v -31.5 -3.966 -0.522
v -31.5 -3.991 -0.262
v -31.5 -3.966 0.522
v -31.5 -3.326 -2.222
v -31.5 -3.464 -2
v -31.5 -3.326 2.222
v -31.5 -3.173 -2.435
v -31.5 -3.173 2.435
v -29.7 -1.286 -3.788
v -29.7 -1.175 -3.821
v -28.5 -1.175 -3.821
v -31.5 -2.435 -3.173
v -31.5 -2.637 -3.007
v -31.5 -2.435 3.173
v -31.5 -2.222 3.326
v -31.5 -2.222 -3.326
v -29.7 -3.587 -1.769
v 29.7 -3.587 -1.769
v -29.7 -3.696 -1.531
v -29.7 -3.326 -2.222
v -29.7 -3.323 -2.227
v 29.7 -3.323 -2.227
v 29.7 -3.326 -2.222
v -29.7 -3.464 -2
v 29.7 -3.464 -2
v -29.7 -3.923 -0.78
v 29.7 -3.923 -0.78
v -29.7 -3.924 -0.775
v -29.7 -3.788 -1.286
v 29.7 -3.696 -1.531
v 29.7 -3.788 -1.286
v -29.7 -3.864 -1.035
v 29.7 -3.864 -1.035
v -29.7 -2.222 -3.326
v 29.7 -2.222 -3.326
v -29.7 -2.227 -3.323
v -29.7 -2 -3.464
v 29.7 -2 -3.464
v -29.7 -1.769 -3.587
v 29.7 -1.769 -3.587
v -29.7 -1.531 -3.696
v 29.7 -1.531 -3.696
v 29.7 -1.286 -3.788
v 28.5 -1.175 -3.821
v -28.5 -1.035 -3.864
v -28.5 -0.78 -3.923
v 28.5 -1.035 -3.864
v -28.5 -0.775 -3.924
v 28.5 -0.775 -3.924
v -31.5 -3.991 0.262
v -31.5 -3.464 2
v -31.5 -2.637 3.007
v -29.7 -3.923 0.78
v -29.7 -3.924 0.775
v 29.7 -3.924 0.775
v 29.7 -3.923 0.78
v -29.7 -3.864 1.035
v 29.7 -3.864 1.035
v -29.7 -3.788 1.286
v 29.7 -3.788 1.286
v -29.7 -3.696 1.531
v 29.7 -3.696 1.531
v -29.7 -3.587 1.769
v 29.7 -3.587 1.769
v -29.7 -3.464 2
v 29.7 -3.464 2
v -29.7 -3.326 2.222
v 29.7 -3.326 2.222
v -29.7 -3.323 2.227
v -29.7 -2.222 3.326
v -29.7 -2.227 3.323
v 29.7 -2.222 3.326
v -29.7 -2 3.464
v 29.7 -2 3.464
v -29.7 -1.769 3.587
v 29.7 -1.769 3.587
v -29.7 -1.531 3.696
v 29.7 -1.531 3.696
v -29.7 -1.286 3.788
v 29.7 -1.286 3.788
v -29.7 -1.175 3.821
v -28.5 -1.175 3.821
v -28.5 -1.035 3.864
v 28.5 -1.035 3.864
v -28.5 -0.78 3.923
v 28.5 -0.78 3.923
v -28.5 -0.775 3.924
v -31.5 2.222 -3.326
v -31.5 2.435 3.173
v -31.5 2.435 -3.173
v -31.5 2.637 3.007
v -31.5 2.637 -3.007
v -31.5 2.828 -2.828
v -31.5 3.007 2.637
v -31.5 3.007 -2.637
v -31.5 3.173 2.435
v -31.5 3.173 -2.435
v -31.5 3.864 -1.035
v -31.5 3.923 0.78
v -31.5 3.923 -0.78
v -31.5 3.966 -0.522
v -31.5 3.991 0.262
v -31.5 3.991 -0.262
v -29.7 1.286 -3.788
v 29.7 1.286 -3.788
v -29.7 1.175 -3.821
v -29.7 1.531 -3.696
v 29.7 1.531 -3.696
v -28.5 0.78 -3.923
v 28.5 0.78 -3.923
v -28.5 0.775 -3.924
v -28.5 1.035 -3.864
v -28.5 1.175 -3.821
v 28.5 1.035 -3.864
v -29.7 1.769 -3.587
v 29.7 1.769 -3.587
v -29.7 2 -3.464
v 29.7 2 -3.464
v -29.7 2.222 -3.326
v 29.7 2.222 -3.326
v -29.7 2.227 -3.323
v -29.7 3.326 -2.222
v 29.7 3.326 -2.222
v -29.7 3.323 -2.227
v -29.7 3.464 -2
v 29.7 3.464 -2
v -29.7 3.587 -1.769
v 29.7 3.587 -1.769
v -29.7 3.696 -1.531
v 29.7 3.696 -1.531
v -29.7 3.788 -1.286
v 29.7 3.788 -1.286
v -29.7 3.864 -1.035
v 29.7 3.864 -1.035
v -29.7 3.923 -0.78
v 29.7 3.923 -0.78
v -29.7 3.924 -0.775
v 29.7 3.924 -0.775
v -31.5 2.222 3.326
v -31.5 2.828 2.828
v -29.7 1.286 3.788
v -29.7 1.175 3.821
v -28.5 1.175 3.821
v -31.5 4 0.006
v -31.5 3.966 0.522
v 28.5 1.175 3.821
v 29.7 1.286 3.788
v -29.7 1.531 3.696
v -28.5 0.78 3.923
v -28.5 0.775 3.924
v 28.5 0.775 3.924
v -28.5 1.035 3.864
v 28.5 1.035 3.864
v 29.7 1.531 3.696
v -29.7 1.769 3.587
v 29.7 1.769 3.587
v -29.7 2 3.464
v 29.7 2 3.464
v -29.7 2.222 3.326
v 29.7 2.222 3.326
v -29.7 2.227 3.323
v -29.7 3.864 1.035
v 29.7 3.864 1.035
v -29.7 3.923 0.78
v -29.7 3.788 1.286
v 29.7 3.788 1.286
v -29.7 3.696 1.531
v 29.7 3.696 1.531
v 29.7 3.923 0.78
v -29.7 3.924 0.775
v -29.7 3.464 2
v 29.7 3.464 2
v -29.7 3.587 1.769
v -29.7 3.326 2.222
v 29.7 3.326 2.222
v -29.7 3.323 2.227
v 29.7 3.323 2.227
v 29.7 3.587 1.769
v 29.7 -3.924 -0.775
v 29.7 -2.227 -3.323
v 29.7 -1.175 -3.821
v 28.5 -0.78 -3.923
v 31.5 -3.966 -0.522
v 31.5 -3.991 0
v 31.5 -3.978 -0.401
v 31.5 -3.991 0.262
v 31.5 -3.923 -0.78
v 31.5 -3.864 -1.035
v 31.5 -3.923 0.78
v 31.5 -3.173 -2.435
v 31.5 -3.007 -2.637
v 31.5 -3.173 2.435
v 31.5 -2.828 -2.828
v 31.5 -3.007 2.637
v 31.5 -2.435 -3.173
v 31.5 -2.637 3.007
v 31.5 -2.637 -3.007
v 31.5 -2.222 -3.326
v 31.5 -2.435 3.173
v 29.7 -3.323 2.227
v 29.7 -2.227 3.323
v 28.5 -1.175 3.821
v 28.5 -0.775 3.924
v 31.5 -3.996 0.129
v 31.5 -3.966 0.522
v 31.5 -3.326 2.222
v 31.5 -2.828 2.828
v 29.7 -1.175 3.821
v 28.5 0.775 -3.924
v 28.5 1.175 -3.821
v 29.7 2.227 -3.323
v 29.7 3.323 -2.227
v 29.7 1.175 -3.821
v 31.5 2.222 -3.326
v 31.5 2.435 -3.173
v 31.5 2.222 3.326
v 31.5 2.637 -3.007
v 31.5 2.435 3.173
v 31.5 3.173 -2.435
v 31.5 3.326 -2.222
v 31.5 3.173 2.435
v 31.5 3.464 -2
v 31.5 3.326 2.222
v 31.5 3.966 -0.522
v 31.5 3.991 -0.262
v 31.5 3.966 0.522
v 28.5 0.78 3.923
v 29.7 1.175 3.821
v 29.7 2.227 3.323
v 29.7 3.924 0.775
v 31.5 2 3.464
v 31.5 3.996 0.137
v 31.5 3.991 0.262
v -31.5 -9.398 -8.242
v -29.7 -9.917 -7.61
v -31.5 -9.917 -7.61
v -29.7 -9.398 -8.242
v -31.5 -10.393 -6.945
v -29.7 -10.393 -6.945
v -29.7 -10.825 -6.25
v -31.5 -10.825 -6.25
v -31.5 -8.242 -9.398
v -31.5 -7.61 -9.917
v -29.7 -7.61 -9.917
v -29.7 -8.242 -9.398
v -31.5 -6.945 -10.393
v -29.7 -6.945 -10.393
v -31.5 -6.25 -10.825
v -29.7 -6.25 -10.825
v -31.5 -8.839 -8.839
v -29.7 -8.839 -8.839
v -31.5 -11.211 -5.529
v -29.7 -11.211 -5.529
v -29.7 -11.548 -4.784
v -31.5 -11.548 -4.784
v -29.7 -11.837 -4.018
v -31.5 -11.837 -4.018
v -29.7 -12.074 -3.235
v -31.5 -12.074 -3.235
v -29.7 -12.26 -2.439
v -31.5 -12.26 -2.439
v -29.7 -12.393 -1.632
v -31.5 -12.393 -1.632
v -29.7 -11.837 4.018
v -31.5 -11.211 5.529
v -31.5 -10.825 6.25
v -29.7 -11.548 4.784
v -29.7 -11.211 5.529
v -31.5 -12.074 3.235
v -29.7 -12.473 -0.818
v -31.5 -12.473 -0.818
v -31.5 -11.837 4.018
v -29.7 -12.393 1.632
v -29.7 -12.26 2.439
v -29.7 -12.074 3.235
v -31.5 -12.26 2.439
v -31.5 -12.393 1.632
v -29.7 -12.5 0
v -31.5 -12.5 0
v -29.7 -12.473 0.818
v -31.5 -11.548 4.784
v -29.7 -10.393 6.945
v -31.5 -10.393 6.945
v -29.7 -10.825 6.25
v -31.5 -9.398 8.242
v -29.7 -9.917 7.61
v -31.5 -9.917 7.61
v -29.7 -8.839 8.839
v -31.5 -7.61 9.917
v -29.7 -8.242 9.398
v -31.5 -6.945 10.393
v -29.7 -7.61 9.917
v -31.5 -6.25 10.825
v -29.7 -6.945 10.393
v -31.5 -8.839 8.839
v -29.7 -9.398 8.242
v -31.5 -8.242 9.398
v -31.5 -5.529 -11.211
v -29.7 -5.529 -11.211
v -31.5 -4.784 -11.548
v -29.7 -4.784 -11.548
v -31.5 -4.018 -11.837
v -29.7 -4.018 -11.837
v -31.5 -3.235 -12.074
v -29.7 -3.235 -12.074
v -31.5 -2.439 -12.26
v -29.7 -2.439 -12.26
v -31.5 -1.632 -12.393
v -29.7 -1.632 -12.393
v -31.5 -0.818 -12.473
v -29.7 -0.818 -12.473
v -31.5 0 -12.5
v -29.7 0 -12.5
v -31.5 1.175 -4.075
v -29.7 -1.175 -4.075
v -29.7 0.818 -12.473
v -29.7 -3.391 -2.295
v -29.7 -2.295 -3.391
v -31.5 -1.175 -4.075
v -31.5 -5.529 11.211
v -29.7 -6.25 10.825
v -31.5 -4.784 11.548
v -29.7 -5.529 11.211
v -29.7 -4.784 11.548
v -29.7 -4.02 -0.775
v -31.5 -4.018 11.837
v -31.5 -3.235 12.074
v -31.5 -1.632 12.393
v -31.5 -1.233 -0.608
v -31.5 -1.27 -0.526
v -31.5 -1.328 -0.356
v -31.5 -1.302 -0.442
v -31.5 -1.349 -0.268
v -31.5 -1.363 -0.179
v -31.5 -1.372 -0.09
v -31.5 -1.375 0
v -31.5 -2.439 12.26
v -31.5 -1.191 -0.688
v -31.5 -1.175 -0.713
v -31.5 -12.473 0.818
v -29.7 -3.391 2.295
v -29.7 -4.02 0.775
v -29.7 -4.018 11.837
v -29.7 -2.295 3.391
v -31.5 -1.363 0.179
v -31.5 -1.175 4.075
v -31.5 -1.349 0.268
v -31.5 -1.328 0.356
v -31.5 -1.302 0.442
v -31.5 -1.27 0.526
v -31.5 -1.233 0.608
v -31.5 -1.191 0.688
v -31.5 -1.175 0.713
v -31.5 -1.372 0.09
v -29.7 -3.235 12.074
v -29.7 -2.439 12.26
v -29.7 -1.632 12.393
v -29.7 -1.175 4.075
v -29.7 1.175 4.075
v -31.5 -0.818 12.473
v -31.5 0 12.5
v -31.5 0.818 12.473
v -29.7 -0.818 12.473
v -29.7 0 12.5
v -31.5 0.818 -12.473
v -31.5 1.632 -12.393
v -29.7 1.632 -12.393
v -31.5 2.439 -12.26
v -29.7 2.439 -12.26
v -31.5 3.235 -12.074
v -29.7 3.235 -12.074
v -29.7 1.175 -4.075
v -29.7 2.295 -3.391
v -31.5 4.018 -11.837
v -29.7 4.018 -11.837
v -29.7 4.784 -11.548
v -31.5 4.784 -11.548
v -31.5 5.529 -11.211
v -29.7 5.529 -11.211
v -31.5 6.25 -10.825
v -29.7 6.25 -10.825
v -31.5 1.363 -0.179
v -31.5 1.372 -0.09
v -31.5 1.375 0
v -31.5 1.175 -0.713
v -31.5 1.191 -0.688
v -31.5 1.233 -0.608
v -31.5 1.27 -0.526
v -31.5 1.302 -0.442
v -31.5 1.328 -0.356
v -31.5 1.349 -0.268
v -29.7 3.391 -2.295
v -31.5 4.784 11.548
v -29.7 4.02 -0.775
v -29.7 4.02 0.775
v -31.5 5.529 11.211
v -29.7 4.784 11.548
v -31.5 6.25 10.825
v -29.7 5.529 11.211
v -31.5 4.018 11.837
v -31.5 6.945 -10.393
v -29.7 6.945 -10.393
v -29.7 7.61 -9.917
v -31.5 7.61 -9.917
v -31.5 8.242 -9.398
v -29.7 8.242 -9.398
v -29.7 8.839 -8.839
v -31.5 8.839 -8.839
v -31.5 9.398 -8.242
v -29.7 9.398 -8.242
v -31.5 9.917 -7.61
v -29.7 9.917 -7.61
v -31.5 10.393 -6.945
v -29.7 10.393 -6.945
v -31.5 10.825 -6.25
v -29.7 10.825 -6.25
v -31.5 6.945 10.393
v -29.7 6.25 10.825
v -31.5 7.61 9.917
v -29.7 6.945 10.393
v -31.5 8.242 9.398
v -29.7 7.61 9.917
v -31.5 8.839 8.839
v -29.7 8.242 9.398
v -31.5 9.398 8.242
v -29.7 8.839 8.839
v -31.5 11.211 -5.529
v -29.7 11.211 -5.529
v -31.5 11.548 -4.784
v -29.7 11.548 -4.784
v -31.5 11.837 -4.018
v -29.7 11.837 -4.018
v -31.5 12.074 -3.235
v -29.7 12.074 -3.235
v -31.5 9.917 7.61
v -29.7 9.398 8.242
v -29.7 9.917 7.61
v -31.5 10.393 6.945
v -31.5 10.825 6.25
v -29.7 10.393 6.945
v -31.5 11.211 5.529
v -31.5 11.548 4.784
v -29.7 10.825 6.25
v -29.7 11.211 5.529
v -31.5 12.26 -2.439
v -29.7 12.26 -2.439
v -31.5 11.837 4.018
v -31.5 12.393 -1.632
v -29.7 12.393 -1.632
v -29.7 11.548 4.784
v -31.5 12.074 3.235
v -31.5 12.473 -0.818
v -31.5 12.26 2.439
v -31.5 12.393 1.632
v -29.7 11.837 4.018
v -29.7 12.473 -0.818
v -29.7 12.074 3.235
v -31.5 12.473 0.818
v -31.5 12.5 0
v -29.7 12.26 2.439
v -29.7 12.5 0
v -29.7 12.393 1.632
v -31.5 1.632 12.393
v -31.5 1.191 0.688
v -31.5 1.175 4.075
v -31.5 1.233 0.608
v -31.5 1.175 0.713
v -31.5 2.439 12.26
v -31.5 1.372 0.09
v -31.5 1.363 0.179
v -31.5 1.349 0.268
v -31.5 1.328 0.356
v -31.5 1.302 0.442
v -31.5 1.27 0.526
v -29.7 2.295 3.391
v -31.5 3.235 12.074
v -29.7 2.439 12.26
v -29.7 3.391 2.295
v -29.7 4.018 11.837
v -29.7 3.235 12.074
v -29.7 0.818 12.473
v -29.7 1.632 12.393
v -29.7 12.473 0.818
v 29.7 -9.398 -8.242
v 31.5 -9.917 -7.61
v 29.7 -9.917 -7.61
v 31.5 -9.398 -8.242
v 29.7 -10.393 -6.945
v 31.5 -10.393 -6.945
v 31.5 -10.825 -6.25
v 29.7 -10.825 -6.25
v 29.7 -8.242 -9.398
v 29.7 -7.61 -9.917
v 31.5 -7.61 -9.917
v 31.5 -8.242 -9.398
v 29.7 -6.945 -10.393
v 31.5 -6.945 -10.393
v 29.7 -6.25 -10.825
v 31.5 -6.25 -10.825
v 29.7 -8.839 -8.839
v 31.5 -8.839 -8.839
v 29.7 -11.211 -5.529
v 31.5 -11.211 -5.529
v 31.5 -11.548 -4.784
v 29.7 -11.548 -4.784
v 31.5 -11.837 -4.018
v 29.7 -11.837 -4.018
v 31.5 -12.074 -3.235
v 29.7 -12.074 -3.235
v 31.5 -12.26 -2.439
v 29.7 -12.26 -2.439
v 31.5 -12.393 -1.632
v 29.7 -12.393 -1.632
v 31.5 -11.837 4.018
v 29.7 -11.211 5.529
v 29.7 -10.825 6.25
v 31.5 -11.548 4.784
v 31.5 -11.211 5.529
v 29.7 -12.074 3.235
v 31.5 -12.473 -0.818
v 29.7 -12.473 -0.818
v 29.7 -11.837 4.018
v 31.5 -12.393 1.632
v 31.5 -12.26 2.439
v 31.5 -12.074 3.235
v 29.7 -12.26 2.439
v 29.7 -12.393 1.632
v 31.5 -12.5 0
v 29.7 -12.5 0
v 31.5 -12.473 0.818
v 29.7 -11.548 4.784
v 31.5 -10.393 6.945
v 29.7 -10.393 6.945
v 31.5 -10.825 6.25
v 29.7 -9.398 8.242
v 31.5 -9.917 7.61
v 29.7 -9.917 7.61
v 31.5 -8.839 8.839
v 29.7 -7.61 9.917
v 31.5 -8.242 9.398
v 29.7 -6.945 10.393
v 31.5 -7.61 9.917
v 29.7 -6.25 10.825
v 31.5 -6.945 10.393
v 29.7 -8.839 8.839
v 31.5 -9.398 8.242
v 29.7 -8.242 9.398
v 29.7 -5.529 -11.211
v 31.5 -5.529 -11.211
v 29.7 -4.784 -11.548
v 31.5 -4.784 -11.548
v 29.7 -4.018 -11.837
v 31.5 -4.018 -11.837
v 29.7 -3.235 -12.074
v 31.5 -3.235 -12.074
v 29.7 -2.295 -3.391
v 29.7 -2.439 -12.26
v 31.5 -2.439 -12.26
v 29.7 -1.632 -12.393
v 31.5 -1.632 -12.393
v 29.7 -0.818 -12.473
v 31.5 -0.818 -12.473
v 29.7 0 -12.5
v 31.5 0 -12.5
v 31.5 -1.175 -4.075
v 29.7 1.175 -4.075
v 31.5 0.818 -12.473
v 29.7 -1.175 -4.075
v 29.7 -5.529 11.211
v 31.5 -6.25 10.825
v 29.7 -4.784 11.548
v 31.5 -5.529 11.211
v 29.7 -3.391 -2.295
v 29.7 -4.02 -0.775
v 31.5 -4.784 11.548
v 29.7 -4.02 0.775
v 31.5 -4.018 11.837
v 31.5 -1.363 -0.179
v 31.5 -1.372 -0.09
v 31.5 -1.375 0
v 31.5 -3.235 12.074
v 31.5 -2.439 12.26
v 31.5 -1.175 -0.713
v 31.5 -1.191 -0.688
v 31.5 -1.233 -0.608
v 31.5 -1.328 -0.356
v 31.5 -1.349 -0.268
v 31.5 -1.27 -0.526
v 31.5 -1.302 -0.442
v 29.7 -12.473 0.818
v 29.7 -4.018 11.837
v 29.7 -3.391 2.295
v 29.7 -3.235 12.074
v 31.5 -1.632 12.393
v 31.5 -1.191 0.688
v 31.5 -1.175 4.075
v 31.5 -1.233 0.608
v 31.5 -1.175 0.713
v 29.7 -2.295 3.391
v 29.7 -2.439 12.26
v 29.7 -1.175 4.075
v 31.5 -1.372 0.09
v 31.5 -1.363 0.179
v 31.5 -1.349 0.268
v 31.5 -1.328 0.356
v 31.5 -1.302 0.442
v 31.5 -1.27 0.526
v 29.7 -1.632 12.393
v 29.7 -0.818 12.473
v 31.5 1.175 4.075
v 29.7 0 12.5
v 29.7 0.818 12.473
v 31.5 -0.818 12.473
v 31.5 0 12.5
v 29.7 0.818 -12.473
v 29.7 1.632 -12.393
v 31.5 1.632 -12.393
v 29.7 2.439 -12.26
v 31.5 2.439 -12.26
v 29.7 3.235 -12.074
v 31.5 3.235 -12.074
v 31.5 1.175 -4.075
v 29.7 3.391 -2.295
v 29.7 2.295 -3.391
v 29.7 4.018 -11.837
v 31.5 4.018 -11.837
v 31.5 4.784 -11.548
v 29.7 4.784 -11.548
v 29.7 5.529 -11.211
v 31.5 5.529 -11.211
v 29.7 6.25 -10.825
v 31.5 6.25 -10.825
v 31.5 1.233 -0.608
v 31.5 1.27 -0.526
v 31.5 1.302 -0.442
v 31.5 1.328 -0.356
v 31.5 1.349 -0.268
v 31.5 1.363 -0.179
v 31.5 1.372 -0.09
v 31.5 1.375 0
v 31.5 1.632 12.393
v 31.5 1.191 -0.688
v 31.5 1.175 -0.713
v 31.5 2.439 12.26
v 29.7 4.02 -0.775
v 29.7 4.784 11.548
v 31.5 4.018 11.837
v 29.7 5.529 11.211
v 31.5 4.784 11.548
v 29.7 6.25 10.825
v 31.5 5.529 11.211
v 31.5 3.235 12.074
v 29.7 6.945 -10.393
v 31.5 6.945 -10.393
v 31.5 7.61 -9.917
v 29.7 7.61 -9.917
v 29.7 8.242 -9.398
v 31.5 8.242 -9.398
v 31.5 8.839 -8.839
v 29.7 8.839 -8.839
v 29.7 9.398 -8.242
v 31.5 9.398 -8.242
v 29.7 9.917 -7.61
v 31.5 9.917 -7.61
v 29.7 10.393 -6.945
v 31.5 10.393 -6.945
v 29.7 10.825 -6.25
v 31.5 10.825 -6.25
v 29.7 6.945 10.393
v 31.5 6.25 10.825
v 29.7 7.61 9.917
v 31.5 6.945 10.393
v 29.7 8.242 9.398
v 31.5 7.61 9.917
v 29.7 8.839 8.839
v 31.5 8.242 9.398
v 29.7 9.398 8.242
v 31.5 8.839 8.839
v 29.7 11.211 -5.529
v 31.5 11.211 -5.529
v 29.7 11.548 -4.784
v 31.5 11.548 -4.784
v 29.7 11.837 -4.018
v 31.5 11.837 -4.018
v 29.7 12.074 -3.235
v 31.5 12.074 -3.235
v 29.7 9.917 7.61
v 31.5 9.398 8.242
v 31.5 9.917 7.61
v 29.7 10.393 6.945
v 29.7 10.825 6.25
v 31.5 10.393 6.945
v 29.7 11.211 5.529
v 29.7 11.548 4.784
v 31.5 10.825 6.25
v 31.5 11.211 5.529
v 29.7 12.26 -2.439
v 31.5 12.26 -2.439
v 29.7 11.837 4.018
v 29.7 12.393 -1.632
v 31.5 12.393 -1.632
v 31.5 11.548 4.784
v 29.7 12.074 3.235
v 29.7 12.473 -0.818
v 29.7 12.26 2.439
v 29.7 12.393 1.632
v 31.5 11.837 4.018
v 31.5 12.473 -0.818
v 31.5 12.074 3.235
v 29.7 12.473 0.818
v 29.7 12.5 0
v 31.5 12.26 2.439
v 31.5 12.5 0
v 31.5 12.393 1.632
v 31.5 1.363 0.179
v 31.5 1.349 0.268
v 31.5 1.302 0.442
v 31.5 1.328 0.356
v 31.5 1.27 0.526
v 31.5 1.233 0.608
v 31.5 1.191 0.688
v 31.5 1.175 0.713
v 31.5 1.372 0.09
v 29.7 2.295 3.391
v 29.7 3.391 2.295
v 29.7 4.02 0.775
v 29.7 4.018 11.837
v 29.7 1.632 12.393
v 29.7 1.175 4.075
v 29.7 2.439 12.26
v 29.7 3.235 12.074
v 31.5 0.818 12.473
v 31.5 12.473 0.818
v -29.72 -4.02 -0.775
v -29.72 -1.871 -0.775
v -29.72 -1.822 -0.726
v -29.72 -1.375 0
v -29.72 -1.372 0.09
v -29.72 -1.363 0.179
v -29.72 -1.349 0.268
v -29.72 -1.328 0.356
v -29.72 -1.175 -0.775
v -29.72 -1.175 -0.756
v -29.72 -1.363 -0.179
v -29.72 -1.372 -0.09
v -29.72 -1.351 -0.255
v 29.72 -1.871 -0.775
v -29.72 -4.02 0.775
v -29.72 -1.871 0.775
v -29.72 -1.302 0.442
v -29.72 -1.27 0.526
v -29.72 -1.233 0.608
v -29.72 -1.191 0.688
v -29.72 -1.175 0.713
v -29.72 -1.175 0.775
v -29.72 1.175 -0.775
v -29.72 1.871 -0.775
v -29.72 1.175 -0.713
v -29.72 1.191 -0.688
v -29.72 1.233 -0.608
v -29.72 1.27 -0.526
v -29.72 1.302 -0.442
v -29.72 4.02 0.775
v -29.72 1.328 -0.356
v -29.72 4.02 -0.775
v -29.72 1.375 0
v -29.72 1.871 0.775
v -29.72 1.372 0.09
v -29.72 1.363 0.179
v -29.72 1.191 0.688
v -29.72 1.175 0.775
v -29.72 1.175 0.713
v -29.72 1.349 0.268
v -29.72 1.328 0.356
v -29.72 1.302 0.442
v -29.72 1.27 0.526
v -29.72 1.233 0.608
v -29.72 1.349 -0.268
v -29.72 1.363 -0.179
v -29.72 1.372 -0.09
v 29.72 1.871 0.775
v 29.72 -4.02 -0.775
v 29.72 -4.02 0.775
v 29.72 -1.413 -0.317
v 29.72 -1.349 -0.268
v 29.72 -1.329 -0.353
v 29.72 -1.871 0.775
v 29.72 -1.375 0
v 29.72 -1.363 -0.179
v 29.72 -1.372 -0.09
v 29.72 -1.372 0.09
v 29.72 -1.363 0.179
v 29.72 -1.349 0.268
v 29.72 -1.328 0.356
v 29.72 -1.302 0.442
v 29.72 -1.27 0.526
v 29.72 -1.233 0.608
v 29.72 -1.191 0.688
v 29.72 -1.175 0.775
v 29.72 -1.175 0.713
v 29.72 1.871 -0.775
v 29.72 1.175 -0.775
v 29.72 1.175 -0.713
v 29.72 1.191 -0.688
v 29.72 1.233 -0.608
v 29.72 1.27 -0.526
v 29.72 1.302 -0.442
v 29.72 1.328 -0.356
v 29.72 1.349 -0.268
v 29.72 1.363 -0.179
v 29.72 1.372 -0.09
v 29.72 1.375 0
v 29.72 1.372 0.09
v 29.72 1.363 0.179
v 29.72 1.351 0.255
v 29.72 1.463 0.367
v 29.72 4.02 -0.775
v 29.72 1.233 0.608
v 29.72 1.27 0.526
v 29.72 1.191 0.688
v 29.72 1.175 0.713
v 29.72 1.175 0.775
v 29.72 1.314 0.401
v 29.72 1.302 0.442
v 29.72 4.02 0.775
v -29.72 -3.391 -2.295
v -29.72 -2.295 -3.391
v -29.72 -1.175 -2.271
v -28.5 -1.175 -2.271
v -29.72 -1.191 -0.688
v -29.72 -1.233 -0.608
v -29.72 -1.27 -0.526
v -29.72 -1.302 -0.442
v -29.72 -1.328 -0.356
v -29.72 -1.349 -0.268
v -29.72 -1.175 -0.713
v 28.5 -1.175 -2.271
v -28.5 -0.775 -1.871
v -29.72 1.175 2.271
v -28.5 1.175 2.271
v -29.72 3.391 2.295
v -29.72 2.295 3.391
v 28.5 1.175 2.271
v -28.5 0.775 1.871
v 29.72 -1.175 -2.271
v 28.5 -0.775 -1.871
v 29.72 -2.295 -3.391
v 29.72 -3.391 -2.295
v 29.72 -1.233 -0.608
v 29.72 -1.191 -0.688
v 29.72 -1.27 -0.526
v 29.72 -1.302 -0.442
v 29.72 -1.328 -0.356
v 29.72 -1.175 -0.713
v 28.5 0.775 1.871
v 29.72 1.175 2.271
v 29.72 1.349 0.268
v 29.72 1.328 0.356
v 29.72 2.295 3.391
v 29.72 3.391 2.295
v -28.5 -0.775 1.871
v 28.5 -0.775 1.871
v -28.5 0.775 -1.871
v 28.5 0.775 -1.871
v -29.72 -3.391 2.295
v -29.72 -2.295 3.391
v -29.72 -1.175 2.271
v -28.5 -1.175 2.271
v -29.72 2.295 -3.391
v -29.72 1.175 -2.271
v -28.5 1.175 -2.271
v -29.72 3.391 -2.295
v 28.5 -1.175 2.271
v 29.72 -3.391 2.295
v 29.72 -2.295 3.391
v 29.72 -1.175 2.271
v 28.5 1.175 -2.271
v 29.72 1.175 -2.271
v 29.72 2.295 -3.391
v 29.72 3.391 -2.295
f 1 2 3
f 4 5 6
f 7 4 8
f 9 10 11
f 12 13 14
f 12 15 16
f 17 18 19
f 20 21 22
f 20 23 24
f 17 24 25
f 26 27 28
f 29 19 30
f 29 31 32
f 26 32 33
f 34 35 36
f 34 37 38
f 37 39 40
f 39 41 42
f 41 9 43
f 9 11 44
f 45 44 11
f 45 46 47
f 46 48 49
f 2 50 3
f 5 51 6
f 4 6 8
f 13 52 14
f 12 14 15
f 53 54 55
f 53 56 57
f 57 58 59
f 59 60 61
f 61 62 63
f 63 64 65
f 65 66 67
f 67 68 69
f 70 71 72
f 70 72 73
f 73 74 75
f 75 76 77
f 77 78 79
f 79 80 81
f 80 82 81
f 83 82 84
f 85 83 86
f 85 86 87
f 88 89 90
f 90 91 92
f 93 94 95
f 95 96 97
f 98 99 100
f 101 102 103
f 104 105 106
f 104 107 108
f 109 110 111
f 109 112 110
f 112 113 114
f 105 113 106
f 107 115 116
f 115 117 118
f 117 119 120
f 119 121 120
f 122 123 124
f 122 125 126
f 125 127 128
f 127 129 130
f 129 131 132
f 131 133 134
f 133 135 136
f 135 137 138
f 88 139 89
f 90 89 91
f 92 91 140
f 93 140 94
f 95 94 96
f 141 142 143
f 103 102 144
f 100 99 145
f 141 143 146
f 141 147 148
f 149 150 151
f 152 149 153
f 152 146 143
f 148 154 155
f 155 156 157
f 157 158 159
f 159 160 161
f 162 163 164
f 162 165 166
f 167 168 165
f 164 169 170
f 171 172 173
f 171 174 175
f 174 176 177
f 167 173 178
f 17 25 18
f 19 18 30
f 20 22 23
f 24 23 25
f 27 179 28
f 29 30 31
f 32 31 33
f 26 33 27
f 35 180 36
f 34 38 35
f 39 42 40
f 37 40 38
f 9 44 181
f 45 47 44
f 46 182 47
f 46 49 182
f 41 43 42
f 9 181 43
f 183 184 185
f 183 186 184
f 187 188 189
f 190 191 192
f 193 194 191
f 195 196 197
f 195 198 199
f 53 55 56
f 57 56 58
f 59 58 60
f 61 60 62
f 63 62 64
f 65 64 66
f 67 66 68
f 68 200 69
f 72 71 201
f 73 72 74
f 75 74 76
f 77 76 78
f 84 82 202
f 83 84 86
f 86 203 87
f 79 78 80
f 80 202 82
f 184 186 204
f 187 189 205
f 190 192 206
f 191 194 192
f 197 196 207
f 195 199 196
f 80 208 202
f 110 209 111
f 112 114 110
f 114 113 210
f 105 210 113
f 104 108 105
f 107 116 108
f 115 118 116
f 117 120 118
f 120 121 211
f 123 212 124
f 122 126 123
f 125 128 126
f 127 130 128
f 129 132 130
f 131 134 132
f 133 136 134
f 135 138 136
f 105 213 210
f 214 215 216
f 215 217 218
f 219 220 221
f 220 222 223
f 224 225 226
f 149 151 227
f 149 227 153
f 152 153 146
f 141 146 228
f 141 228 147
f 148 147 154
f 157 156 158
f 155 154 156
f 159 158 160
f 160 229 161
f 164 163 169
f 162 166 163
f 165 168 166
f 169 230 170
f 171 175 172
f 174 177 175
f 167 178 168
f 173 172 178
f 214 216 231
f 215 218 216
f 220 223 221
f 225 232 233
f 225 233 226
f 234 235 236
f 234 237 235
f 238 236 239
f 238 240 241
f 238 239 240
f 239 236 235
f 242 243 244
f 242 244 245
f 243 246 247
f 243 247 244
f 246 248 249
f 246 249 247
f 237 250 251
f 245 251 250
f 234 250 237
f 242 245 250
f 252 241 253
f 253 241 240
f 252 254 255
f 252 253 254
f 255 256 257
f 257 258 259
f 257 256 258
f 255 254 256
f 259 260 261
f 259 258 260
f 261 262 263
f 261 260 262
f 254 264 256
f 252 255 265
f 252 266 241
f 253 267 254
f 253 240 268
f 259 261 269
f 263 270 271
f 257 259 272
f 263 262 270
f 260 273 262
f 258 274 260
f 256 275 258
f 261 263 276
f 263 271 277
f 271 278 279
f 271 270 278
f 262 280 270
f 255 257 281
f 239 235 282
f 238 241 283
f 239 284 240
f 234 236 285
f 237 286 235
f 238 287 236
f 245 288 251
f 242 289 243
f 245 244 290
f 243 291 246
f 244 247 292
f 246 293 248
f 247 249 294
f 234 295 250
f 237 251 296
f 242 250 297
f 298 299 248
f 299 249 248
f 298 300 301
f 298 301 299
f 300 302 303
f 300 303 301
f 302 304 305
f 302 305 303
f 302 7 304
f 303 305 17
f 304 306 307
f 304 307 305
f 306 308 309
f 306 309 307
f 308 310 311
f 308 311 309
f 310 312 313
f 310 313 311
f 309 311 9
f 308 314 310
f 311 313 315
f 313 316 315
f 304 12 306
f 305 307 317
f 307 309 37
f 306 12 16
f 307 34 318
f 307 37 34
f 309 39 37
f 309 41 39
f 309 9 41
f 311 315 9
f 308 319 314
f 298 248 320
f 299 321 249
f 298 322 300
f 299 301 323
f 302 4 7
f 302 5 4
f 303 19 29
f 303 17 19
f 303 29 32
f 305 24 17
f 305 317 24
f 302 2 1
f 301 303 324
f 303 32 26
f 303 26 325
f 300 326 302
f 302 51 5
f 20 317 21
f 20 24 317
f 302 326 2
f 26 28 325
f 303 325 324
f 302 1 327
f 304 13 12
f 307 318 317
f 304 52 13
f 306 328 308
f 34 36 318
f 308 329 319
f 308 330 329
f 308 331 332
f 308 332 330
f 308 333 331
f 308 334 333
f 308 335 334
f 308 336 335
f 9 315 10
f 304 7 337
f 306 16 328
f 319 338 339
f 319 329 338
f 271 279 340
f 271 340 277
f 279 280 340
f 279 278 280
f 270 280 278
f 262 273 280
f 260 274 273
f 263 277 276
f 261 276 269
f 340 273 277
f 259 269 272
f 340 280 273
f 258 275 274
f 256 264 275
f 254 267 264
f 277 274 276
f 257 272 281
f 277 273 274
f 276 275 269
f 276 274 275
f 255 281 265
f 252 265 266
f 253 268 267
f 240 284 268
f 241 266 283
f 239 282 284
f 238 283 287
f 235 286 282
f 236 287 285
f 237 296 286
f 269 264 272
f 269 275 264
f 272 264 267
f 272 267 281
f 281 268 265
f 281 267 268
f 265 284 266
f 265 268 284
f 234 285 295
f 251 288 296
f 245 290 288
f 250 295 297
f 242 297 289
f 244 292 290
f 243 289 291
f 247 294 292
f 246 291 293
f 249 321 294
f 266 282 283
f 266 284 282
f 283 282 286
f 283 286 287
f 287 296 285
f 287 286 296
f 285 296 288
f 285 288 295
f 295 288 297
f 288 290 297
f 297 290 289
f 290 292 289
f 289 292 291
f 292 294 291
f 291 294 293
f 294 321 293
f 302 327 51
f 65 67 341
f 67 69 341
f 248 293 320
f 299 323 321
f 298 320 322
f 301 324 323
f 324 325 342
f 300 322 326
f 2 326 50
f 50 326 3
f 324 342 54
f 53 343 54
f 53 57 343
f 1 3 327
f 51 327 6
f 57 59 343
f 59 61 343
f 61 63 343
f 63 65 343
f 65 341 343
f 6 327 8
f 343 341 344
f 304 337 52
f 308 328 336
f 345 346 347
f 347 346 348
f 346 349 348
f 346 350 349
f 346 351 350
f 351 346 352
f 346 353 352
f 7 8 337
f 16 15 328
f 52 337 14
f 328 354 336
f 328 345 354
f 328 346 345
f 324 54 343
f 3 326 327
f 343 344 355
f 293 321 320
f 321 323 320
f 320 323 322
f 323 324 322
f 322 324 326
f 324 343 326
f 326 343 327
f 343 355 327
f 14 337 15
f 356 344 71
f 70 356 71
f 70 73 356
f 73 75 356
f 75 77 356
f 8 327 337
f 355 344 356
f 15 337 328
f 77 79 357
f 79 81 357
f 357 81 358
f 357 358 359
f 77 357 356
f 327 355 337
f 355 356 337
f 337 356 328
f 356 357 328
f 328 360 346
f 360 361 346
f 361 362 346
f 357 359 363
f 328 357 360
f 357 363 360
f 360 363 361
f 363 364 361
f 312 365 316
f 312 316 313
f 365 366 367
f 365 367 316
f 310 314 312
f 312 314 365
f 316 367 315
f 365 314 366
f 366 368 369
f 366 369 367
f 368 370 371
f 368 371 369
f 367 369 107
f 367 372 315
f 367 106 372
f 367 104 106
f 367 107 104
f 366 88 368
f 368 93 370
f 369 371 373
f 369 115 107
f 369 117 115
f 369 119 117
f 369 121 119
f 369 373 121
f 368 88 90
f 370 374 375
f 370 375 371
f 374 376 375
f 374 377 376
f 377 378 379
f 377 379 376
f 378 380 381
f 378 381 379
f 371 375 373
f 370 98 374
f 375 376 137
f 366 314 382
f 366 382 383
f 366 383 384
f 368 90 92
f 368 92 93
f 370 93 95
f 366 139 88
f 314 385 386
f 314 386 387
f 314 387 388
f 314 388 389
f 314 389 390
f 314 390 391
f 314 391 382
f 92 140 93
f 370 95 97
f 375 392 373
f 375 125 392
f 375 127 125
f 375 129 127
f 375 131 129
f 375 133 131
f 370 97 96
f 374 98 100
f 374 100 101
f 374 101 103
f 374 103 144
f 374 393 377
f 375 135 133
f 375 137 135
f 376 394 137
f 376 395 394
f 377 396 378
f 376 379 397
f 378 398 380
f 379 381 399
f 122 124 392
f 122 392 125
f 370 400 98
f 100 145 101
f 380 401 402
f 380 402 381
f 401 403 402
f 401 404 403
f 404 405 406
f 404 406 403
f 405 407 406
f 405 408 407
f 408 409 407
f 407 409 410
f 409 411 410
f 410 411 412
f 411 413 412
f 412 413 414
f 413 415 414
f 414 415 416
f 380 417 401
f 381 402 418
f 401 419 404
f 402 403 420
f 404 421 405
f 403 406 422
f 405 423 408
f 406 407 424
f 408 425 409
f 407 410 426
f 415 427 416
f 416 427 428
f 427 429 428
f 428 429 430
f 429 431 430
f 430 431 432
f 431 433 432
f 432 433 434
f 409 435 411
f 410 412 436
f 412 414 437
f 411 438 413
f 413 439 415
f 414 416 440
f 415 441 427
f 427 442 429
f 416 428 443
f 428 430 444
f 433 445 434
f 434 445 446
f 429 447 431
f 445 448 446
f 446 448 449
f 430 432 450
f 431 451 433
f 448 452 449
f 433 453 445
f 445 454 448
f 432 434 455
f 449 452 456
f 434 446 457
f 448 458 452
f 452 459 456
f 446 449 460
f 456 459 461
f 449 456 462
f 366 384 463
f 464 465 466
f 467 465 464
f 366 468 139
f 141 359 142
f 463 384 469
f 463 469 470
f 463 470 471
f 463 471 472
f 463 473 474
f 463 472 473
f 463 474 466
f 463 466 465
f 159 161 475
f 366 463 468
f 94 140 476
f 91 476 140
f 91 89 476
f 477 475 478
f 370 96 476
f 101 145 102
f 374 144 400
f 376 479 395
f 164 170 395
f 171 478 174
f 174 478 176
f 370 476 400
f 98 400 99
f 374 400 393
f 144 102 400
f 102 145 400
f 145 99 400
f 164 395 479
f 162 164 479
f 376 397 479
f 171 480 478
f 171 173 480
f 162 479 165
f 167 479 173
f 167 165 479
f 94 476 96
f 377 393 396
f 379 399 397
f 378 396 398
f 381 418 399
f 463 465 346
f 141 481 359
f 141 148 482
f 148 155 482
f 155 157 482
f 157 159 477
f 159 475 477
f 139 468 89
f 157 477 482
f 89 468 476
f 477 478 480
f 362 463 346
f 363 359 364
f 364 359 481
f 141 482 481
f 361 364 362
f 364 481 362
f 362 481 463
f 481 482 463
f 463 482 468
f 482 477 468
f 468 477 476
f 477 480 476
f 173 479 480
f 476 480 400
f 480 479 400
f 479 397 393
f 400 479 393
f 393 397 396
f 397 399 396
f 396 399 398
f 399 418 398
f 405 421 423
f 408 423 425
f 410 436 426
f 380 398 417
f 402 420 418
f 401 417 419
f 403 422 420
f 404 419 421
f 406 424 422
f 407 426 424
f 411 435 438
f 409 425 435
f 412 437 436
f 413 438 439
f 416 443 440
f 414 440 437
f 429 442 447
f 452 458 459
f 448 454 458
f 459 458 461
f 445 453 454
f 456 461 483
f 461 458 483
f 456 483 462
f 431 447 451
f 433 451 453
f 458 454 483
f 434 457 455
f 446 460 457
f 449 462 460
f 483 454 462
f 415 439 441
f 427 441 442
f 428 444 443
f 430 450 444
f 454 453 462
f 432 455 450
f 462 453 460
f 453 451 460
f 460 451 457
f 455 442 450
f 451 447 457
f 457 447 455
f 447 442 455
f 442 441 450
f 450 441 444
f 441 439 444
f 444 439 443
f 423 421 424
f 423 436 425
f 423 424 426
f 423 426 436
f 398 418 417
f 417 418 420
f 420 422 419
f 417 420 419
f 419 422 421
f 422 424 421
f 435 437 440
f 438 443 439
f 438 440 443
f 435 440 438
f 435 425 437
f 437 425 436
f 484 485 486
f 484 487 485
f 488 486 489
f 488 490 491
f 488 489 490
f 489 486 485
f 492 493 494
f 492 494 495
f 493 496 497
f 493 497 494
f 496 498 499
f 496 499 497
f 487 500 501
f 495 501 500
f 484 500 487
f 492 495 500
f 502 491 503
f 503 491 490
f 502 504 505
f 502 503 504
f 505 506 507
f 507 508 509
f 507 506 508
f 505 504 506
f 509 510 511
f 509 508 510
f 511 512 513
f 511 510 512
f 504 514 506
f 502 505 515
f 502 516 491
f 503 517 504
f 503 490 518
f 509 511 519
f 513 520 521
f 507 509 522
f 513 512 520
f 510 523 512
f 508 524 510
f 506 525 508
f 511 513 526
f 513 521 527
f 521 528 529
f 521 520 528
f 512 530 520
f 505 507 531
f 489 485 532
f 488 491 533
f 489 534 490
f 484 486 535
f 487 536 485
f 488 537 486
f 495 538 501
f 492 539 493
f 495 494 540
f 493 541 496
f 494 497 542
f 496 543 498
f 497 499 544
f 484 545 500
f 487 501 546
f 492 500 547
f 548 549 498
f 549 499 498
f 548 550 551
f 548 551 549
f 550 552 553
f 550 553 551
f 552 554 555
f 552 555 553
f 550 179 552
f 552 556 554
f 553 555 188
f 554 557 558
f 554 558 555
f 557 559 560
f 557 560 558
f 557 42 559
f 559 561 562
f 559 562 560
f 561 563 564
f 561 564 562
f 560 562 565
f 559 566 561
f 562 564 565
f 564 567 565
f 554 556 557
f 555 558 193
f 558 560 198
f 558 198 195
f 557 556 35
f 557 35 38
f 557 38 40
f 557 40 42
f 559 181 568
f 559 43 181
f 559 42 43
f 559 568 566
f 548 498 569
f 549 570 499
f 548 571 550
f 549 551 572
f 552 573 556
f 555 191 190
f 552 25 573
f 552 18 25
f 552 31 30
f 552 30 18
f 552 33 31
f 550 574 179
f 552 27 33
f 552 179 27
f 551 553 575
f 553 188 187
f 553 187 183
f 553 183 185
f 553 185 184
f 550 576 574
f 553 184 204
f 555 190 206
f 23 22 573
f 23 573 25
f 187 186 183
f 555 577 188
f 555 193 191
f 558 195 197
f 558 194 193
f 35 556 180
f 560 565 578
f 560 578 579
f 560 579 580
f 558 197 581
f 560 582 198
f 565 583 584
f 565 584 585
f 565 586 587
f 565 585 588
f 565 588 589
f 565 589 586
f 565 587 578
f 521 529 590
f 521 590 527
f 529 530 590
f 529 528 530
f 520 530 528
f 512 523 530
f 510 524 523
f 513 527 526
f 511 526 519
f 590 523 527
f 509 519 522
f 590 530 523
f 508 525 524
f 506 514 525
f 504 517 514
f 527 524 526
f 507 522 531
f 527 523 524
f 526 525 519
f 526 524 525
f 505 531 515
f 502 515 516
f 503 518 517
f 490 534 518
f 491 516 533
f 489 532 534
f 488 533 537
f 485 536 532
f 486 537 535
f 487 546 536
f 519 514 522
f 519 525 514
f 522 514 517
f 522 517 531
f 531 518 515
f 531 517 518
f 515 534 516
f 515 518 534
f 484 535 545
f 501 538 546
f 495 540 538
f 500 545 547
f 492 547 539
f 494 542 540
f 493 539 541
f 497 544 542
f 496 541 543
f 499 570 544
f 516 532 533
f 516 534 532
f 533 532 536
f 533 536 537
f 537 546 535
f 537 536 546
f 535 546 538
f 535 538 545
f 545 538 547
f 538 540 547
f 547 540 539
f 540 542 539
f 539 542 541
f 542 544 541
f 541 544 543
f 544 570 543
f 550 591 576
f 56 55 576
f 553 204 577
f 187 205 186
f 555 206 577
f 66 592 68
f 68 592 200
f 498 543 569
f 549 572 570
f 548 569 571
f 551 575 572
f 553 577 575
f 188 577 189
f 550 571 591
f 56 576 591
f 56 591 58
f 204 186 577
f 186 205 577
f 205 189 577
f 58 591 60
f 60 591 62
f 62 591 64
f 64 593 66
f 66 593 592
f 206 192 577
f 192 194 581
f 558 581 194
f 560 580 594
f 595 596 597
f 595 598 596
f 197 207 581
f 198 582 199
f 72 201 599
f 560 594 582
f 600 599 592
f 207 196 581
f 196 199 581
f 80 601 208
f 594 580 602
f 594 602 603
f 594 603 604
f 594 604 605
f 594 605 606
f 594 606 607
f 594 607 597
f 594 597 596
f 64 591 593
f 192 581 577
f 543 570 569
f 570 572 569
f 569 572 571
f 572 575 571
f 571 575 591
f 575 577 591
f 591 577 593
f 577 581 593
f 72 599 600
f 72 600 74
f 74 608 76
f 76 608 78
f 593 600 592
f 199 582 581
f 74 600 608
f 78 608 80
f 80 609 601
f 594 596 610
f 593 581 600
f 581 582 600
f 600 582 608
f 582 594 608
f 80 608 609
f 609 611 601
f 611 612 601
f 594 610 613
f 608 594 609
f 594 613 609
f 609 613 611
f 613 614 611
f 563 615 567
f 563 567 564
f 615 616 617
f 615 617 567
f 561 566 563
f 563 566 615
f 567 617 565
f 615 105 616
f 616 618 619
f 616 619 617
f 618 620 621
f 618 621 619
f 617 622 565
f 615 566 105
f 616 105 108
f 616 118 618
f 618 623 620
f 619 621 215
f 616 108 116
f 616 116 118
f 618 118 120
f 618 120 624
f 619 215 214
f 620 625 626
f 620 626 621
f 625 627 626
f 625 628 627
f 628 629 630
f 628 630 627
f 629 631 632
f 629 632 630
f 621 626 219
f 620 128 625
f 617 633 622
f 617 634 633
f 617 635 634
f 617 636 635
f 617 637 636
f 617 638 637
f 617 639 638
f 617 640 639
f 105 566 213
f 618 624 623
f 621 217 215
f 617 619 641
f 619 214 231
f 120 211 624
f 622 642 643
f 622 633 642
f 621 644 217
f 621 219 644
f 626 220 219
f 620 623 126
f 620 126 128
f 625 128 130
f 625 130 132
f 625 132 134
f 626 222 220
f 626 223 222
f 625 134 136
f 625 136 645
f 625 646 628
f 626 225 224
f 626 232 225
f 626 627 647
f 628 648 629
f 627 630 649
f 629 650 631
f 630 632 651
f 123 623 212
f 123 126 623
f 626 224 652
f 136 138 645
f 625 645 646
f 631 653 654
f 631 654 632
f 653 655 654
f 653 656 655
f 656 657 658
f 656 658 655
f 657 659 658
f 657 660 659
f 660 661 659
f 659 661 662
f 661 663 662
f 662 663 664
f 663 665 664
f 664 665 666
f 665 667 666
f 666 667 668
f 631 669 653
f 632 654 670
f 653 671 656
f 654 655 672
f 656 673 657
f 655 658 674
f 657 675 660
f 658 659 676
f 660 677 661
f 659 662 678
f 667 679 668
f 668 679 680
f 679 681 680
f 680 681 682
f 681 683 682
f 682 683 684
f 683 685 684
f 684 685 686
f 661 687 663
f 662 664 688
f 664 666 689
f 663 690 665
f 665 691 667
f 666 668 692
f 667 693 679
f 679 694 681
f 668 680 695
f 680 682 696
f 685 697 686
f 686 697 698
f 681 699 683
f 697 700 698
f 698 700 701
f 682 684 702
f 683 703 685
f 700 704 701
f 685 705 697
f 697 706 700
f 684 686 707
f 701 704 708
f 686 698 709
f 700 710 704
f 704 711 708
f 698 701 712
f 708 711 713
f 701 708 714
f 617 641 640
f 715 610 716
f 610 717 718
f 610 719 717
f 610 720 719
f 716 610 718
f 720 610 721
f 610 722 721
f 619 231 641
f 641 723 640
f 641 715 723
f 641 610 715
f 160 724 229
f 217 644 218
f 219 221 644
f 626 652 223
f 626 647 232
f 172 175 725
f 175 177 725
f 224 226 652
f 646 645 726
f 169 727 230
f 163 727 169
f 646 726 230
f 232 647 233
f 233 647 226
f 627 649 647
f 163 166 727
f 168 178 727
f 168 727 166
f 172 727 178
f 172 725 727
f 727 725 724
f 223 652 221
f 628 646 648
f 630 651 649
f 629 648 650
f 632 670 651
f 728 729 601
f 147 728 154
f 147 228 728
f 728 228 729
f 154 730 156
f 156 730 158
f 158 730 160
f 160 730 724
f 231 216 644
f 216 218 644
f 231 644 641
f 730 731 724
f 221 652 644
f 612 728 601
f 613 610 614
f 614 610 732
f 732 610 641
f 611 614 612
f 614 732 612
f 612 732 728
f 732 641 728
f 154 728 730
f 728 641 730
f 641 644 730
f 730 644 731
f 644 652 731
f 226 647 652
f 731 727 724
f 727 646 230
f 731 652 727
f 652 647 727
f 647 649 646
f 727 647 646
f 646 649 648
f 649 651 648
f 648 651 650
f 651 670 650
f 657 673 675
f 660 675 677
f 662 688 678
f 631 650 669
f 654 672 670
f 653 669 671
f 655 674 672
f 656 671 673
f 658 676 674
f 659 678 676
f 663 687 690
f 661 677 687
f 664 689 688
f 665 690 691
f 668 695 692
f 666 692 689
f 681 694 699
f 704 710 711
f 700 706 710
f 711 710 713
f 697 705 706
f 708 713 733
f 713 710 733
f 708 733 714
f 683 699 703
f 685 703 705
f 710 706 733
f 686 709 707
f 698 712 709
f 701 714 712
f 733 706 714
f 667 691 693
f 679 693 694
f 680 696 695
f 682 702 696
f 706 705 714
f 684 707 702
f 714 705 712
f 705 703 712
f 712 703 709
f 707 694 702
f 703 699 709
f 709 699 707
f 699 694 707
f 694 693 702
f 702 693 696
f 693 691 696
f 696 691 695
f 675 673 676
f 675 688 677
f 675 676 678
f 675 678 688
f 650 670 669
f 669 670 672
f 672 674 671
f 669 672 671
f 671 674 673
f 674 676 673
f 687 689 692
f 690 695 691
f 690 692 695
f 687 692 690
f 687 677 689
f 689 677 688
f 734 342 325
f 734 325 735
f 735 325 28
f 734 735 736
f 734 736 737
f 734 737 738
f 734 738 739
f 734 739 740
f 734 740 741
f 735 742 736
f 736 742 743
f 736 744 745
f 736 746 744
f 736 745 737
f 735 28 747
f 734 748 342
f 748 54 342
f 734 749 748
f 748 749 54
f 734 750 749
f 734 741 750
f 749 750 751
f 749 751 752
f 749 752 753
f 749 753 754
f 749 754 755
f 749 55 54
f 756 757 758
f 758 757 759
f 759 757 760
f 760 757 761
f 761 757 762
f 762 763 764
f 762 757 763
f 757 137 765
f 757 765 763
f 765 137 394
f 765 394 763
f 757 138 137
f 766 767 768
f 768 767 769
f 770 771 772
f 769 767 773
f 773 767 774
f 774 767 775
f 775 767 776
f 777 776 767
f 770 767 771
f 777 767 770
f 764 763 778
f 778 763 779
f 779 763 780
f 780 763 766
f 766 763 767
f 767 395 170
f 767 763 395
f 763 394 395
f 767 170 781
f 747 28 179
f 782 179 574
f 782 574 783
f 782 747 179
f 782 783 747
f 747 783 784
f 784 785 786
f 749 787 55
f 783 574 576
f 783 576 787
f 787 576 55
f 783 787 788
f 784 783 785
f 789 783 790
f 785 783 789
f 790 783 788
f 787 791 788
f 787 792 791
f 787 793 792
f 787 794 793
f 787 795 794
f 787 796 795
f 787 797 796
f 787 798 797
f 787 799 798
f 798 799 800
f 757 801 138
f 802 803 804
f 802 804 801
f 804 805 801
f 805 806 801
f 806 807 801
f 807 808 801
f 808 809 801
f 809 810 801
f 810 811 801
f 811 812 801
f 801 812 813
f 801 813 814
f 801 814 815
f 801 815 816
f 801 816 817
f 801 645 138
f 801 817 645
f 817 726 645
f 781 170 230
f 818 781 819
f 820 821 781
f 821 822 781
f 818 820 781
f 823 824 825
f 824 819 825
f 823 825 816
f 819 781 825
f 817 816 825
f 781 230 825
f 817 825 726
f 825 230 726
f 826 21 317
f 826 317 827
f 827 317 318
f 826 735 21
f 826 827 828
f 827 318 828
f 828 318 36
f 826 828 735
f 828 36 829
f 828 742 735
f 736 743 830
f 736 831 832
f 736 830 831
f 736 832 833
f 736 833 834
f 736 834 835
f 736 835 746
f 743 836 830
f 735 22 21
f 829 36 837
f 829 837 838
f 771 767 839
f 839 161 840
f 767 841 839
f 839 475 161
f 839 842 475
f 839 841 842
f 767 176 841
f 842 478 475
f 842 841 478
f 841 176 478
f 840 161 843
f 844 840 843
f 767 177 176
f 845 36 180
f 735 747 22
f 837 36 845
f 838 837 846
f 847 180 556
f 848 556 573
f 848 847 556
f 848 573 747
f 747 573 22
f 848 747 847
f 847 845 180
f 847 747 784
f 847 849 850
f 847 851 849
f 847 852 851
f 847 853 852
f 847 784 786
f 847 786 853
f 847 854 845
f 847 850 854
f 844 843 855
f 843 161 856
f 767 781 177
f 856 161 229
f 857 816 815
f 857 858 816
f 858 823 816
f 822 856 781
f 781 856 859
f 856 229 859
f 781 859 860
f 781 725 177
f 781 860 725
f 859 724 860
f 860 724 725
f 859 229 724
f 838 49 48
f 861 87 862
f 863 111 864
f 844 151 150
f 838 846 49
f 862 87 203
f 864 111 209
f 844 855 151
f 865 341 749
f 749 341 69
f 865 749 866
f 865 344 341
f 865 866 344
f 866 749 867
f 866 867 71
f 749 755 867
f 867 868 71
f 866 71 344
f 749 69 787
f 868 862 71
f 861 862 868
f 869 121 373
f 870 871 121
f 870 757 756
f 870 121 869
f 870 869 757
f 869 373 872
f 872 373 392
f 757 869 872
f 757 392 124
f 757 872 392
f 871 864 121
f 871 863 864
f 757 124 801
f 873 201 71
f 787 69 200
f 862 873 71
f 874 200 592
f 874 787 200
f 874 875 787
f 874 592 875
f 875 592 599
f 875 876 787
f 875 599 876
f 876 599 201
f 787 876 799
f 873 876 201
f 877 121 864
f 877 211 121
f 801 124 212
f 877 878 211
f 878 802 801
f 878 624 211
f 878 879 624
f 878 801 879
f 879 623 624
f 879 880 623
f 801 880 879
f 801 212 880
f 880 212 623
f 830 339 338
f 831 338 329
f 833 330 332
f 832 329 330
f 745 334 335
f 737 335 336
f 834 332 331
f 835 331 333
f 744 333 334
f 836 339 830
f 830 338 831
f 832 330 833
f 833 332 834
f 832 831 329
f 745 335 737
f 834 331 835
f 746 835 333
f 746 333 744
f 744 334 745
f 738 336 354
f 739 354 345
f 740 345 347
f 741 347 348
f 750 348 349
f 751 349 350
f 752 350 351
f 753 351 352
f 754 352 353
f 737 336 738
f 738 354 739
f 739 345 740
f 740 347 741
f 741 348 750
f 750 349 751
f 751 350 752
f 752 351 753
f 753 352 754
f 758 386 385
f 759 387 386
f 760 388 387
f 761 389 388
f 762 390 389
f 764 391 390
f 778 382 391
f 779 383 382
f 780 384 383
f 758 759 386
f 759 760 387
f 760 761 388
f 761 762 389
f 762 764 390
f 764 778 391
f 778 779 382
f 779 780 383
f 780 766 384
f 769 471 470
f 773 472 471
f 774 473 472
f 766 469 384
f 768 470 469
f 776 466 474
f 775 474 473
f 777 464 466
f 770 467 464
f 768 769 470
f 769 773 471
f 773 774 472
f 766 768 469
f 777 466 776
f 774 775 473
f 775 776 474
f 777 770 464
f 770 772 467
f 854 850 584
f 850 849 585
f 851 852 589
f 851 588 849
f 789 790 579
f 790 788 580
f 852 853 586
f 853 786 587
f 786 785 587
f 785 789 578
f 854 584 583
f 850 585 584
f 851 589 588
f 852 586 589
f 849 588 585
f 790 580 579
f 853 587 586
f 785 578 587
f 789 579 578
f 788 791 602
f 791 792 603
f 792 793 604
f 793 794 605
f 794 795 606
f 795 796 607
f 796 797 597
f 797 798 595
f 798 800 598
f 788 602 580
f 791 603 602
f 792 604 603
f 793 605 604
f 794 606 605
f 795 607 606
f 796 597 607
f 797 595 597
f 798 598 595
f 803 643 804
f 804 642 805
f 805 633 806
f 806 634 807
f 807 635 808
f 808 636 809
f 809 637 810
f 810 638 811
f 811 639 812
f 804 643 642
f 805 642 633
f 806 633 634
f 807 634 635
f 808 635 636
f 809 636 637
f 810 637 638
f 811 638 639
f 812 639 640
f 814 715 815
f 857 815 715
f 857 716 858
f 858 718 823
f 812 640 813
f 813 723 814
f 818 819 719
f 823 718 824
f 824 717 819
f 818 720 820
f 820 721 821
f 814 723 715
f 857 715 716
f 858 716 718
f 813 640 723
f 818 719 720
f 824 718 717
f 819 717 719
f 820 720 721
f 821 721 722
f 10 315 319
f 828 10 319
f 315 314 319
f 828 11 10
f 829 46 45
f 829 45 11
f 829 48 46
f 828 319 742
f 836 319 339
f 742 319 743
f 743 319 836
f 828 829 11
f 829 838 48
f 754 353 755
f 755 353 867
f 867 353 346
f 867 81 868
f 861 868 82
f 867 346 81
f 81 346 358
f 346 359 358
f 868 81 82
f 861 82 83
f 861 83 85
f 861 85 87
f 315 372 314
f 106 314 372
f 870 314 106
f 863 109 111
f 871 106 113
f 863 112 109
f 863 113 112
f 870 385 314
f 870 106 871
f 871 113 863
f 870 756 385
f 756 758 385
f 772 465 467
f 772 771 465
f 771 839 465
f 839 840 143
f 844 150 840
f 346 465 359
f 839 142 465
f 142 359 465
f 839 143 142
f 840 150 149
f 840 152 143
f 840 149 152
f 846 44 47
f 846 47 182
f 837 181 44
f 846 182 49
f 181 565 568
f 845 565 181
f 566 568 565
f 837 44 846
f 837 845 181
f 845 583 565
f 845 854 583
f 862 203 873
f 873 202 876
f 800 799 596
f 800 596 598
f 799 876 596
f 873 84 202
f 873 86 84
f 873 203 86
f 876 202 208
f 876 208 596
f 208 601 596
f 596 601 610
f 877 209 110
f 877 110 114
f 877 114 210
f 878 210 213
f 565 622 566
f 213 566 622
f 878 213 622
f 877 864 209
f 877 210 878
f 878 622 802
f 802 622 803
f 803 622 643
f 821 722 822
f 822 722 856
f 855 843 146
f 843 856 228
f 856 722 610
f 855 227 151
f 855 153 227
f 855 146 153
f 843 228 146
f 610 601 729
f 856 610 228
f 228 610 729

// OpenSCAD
// Parametric duplicate for a 120 medium format film spool.
// Print one, test-fit in the camera/back, then adjust the parameters below.
//
// Orientation: spool axis is the X axis.
// Units: millimeters.

$fn = 96;

// Overall spool dimensions.
overall_width = 63.0;        // Outside face to outside face.
flange_diameter = 25.0;      // Outer diameter of the spool flanges.
flange_thickness = 1.8;
core_diameter = 8.0;         // Diameter of the film/backing-paper core.

// End geometry. Many cameras tolerate variation here, but measure yours.
axle_hole_diameter = 2.6;    // Set to 0 for no through-bore.
drive_slot_width = 2.2;      // Narrow dimension of each winding-key slot.
drive_slot_length = 8.0;     // Long dimension of each winding-key slot.
drive_slot_depth = 3.0;      // How far the slot is cut into each end.

// Film leader slot in the core.
leader_slot_enabled = true;
leader_slot_count = 4;       // Evenly spaced radial slots around the core.
leader_slot_width = 1.4;

// Print tuning.
clearance = 0.15;
eps = 0.02;

module cyl_x(length, diameter) {
    rotate([0, 90, 0])
        cylinder(h = length, d = diameter, center = true);
}

module end_drive_slot(x_sign) {
    translate([
        x_sign * (overall_width / 2 - drive_slot_depth / 2 + eps),
        0,
        0
    ])
        cube([
            drive_slot_depth + 2 * eps,
            drive_slot_width + clearance,
            drive_slot_length + clearance
        ], center = true);
}

module leader_slot(angle = 0) {
    inner_width = overall_width - 2 * flange_thickness;

    // A straight slot through the core for inserting backing paper.
    rotate([angle, 0, 0])
        cube([
            inner_width + 2 * eps,
            core_diameter + 2 * eps,
            leader_slot_width + clearance
        ], center = true);
}

module leader_slots() {
    for (i = [0 : leader_slot_count - 1]) {
        leader_slot(i * 180 / leader_slot_count);
    }
}

module spool_body() {
    union() {
        // Core.
        cyl_x(overall_width, core_diameter);

        // Left and right flanges.
        translate([-overall_width / 2 + flange_thickness / 2, 0, 0])
            cyl_x(flange_thickness, flange_diameter);

        translate([overall_width / 2 - flange_thickness / 2, 0, 0])
            cyl_x(flange_thickness, flange_diameter);
    }
}

module film_spool_120() {
    difference() {
        spool_body();

        if (axle_hole_diameter > 0) {
            cyl_x(overall_width + 2 * eps, axle_hole_diameter + clearance);
        }

        end_drive_slot(-1);
        end_drive_slot(1);

        if (leader_slot_enabled) {
            leader_slots();
        }
    }
}

film_spool_120();
